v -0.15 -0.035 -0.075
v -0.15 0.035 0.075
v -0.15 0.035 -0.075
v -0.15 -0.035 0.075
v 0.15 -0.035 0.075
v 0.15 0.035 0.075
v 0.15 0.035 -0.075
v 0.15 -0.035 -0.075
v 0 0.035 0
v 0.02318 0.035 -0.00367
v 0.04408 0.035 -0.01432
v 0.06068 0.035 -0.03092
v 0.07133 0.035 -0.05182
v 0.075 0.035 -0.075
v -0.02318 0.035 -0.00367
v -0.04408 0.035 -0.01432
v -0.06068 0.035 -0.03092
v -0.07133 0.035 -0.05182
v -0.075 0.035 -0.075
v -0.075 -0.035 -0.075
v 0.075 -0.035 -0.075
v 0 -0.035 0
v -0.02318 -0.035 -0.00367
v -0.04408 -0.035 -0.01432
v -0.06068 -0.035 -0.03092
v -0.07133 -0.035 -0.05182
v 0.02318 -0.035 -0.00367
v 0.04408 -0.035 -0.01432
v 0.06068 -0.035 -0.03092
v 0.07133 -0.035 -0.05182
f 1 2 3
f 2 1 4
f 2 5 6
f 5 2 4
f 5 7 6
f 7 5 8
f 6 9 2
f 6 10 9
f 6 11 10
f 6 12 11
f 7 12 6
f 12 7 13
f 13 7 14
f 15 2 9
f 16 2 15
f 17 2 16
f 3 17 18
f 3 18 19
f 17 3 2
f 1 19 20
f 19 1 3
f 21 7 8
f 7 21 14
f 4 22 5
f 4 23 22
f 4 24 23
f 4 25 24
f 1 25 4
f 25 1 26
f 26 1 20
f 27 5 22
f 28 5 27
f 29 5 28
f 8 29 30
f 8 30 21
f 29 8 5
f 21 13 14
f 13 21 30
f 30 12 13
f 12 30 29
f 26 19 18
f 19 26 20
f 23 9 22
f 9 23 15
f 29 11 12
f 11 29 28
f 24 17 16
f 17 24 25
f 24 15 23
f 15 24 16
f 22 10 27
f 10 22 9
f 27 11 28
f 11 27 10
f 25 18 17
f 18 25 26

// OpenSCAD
difference() {
    scale([0.300, 0.070, 0.150]) {
        cube(1, center=true);
    }
    translate([0, 0.5, -0.075]) {
        rotate([90, 0, 0]) {
            cylinder(h=1.0, r=0.075, $fn=20);
        }
    }
}
